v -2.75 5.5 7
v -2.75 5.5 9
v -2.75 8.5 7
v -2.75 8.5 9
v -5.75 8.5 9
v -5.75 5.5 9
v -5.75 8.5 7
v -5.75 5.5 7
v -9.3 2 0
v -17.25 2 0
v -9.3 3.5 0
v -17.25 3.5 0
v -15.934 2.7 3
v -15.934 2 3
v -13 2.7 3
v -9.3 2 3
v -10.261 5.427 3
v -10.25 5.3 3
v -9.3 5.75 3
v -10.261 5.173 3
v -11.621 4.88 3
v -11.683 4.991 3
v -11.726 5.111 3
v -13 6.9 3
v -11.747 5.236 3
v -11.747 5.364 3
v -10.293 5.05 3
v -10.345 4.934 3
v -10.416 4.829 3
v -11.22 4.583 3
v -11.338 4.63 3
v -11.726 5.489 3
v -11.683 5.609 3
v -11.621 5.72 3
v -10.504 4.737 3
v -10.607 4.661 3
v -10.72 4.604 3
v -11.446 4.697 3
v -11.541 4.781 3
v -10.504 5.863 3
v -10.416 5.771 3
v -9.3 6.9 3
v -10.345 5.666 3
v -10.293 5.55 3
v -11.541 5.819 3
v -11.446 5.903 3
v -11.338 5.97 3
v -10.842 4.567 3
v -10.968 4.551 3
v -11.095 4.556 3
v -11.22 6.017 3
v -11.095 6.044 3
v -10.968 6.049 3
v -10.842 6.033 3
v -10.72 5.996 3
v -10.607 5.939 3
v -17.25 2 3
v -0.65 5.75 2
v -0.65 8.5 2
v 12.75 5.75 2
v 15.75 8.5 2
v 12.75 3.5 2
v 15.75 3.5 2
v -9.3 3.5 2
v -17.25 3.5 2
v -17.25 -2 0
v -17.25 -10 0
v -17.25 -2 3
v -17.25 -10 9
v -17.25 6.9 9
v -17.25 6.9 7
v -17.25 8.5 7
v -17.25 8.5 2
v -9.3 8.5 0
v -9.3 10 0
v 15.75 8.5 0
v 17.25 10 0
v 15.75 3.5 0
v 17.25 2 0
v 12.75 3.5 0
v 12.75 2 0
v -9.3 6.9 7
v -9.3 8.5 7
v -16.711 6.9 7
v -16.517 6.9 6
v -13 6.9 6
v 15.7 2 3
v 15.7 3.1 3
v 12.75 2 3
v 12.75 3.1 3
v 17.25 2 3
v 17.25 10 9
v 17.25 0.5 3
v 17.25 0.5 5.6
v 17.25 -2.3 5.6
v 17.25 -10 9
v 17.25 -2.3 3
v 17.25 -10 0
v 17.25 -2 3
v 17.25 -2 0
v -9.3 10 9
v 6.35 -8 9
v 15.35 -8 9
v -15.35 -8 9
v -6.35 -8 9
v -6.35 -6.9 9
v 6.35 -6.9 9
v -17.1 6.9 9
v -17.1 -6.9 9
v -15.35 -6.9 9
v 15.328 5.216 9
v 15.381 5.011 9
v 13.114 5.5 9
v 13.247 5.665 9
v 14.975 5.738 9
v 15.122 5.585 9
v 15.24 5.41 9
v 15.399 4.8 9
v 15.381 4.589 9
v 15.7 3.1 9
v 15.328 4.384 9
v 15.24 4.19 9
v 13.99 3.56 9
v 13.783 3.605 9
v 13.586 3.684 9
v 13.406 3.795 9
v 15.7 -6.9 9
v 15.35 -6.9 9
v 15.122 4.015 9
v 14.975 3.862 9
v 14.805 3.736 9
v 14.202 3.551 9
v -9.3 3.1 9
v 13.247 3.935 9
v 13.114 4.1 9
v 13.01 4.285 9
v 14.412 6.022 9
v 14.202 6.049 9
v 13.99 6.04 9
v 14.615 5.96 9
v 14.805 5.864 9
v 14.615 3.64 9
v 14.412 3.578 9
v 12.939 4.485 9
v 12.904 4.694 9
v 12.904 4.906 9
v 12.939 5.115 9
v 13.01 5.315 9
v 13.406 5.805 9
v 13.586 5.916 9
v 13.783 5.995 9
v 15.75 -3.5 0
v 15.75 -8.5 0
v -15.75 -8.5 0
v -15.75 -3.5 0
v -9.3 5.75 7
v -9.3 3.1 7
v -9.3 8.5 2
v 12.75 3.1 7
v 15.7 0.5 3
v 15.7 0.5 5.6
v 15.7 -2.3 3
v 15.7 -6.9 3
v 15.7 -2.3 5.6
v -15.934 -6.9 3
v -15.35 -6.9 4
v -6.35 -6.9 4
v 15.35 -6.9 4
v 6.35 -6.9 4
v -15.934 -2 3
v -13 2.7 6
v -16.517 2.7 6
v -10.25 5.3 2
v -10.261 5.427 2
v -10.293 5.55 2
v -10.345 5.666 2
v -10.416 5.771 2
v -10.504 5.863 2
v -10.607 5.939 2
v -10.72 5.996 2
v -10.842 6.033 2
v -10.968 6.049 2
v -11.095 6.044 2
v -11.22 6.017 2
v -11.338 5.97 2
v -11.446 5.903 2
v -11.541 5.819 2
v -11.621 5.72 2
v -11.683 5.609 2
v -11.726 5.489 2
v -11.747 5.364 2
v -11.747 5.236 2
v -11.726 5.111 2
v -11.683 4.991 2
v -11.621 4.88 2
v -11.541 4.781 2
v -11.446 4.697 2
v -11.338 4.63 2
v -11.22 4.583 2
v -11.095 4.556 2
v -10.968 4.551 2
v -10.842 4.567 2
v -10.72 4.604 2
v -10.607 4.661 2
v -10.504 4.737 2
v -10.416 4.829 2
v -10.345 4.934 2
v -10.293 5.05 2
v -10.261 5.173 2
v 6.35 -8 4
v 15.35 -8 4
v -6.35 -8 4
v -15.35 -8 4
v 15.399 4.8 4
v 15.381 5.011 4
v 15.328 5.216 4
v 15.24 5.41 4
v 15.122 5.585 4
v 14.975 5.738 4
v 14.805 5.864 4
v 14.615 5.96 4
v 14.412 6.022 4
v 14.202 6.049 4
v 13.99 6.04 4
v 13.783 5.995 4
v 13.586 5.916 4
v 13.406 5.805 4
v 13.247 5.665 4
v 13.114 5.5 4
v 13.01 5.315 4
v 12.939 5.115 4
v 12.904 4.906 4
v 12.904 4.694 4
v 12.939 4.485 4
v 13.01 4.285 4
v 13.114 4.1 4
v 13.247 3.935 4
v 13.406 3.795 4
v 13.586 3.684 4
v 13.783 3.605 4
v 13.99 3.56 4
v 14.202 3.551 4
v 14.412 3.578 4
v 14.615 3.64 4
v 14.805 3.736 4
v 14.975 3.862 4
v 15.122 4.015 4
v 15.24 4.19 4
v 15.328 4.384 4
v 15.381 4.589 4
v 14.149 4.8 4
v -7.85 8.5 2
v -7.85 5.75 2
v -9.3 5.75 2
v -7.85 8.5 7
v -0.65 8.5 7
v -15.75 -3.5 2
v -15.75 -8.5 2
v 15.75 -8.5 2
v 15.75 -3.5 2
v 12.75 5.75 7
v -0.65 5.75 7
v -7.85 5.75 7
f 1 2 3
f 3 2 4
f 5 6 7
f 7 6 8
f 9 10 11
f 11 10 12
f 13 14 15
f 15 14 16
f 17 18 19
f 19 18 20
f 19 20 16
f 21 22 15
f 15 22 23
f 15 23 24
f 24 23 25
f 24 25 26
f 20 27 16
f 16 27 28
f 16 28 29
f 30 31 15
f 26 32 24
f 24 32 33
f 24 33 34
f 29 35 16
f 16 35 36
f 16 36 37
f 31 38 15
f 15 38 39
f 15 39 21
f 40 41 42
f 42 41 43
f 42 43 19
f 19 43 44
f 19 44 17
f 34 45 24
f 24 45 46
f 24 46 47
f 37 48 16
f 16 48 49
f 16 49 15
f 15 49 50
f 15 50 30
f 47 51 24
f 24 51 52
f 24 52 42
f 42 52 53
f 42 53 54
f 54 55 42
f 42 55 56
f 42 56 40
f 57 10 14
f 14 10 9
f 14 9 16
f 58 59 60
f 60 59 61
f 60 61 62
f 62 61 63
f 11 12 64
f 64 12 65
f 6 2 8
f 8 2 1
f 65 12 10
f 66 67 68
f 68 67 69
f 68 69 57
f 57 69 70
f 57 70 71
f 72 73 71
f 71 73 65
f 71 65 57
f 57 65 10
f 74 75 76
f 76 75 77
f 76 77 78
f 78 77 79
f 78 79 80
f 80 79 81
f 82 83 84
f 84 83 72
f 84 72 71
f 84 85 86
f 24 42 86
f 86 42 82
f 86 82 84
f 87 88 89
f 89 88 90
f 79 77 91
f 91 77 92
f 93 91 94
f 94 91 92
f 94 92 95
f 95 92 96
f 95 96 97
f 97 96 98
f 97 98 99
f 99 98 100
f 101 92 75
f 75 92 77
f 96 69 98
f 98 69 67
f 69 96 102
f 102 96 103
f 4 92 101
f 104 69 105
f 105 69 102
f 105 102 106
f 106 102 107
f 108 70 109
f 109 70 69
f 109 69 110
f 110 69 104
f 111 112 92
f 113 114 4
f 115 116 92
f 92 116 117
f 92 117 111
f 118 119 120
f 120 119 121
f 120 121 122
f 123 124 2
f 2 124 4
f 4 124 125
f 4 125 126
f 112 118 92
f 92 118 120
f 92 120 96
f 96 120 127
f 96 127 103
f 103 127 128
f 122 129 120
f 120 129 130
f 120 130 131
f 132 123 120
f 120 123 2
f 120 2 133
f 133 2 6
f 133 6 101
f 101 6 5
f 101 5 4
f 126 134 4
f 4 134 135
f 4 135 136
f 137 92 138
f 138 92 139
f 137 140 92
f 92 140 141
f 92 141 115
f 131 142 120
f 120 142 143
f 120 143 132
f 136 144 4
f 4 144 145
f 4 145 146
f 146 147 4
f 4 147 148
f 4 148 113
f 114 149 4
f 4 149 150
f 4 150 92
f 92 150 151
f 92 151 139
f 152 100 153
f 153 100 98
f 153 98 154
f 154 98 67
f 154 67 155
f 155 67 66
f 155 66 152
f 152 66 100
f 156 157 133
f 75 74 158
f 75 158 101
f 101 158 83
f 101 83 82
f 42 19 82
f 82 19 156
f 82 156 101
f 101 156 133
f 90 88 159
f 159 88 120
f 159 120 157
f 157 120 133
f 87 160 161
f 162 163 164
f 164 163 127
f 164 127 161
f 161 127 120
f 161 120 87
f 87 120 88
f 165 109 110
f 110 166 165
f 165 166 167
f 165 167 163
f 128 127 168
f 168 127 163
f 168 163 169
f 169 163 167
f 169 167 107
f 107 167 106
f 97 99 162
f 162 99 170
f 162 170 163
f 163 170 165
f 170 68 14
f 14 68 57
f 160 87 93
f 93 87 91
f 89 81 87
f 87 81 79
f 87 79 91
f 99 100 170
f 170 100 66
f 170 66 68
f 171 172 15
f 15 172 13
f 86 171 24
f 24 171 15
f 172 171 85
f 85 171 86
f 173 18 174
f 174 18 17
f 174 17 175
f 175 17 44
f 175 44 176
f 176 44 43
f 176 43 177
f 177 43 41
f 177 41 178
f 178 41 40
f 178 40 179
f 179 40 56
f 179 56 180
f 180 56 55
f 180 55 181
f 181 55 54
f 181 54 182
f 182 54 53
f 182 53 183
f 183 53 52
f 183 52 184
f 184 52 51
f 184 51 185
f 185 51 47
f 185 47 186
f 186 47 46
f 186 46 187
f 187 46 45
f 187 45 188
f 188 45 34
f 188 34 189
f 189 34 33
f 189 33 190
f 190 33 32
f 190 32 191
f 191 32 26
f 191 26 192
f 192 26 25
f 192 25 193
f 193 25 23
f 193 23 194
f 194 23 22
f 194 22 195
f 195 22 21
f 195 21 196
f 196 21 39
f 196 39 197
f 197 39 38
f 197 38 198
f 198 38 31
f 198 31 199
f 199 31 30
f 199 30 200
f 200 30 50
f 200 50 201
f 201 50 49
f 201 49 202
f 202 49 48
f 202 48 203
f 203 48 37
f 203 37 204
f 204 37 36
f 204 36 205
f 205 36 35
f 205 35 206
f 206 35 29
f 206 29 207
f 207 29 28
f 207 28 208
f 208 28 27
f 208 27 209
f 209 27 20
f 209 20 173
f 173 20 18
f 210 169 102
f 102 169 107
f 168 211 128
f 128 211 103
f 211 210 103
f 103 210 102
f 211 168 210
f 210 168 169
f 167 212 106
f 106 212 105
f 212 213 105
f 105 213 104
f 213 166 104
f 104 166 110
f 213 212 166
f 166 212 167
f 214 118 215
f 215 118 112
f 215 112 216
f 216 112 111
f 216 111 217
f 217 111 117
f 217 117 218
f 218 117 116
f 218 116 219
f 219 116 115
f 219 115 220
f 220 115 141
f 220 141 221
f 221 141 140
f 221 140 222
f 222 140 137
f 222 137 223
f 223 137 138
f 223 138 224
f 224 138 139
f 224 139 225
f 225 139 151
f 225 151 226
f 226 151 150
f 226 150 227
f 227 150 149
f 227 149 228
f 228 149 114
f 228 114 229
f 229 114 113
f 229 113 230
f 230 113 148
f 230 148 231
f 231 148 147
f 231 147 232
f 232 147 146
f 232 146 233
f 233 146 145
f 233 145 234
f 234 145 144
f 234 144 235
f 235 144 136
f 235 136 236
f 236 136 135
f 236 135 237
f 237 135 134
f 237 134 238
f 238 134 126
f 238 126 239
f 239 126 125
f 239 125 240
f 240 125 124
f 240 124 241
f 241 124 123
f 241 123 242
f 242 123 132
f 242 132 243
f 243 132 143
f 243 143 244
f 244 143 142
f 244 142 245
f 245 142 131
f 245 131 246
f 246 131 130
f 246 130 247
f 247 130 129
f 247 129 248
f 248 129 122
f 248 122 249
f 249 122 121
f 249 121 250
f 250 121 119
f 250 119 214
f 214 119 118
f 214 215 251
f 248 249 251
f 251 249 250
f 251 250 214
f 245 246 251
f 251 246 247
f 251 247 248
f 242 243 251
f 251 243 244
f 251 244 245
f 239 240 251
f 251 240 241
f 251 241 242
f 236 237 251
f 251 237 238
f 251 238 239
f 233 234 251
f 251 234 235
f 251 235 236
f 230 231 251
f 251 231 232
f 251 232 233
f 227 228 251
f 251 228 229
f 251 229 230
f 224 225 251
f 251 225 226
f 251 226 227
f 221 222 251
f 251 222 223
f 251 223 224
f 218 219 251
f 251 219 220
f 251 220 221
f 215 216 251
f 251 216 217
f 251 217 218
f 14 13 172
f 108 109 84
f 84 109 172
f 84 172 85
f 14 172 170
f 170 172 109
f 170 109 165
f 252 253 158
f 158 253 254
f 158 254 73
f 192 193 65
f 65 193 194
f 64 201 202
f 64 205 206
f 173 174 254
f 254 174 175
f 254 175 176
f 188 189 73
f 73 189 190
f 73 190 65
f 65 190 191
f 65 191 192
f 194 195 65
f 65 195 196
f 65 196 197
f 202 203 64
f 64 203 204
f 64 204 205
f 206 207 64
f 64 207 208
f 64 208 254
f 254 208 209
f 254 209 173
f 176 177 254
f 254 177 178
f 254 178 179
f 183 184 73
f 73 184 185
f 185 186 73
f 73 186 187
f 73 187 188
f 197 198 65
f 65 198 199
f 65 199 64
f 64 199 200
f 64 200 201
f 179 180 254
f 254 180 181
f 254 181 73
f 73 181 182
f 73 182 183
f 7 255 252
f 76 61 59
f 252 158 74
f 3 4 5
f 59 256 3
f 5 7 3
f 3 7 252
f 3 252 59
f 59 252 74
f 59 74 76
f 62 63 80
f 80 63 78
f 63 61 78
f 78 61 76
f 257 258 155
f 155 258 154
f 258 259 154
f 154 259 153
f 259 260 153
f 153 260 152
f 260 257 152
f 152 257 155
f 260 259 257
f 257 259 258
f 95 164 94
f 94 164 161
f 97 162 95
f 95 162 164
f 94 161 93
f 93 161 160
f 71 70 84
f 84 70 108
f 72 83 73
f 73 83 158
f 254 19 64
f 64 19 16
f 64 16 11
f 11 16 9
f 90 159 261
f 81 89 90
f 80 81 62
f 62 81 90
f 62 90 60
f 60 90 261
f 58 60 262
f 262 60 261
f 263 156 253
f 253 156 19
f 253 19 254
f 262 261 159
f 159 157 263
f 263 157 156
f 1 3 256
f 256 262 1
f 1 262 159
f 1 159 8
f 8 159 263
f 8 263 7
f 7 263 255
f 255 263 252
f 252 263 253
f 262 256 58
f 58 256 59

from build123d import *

# Parameters (mm, degrees)
SKETCH1_W           = 34.5
SKETCH1_H           = 20
BOSS_EXTRUDE1_DEPTH = 9
CUT_EXTRUDE1_DEPTH  = 6
SKETCH5_W           = 3
SKETCH5_H           = 4
CUT_EXTRUDE2_DEPTH  = 35
SKETCH7_W           = 2.7
SKETCH7_H           = 4.2
BOSS_EXTRUDE3_DEPTH = 3
SKETCH14_R          = 0.75
CUT_EXTRUDE9_DEPTH  = 2
SKETCH8_R           = 1.25
SKETCH8_W           = 9
SKETCH8_H           = 1.1
CUT_EXTRUDE3_DEPTH  = 5
CHAMFER1_SIZE       = 1.4
CHAMFER1_SIZE_2     = 7.202375622
SKETCH6_W           = 31.5
SKETCH6_H           = 5
CUT_EXTRUDE6_DEPTH  = 2
SKETCH11_W          = 2.6
SKETCH11_H          = 2.8
CUT_EXTRUDE7_DEPTH  = 2
SKETCH12_W          = 3
SKETCH12_H          = 3
CUT_EXTRUDE8_DEPTH  = 7
SKETCH16_W          = 7.95
SKETCH16_H          = 3.1
CUT_EXTRUDE10_DEPTH = 2
SKETCH17_W          = 7.95
SKETCH17_H          = 7
CUT_EXTRUDE11_DEPTH = 1.5
SKETCH18_W          = 1.5
SKETCH18_H          = 5
CUT_EXTRUDE12_DEPTH = 2
SKETCH20_W          = 22.05
SKETCH20_H          = 3.75
CUT_EXTRUDE13_DEPTH = 7
SKETCH21_W          = 7.2
SKETCH21_H          = 2.75
CUT_EXTRUDE14_DEPTH = 5


with BuildPart() as part:
    # Sketch1 → Boss-Extrude1 (new body)
    with BuildSketch(Plane.XY):
        Rectangle(SKETCH1_W, SKETCH1_H)
    extrude(amount=BOSS_EXTRUDE1_DEPTH)

    # Sketch3 → Cut-Extrude1 (cut)
    with BuildSketch(Plane.XY.offset(9)):
        Polygon((15.7, -6.9), (15.7, 3.1), (-9.3, 3.1), (-9.3, 6.9), (-15.7, 6.9), (-15.7, -6.9), align=None)
    extrude(amount=-CUT_EXTRUDE1_DEPTH, mode=Mode.SUBTRACT)

    # Sketch5 → Cut-Extrude2 (cut)
    with BuildSketch(Plane(origin=(17.25, 0, 0), x_dir=(0, 0, -1), z_dir=(1, 0, 0))):
        with Locations((-1.5, 0)):
            Rectangle(SKETCH5_W, SKETCH5_H)
    extrude(amount=-CUT_EXTRUDE2_DEPTH, mode=Mode.SUBTRACT)

    # Sketch7 → Boss-Extrude3 (add)
    with BuildSketch(Plane.XY.offset(3)):
        with Locations((-14.35, 4.8)):
            Rectangle(SKETCH7_W, SKETCH7_H)
    extrude(amount=BOSS_EXTRUDE3_DEPTH)

    # Sketch14 → Cut-Extrude9 (cut)
    with BuildSketch(Plane.XY.offset(3)):
        with Locations((-11, 5.3)):
            Circle(SKETCH14_R)
    extrude(amount=-CUT_EXTRUDE9_DEPTH, mode=Mode.SUBTRACT)

    # Sketch8 → Cut-Extrude3 (cut)
    with BuildSketch(Plane.XY.offset(9)):
        with Locations((14.149147106, 4.8)):
            Circle(SKETCH8_R)
        with Locations((-10.85, -7.45)):
            Rectangle(SKETCH8_W, SKETCH8_H)
        with Locations((10.85, -7.45)):
            Rectangle(SKETCH8_W, SKETCH8_H)
    extrude(amount=-CUT_EXTRUDE3_DEPTH, mode=Mode.SUBTRACT)

    # Chamfer1
    # the kernel refuses this chamfer: 7.202375622, 1.4 mm, written as the material it takes off along each edge
    with BuildSketch(Plane(origin=(-15.7, 6.9, 9), x_dir=(-0.9816291836389949, 0, 0.190798704996235), z_dir=(0, -1, 0))) as chamfer1_piece_1_section:
        Polygon((CHAMFER1_SIZE * 0.981629183639, CHAMFER1_SIZE * 0.190798704996), (-CHAMFER1_SIZE_2 * 0.190798705006, CHAMFER1_SIZE_2 * 0.981629183688), (0, 0), align=None)
    chamfer1_piece_1 = extrude(amount=13.8, mode=Mode.PRIVATE)
    chamfer1_piece_1 = split(chamfer1_piece_1, bisect_by=Plane(origin=(-16.266997619, 4.8, 6), z_dir=(0, 0, 1)), keep=Keep.TOP, mode=Mode.PRIVATE)
    add(chamfer1_piece_1, mode=Mode.SUBTRACT)
    with BuildSketch(Plane(origin=(-15.7, 25.613448453, 9), x_dir=(-0.9816291836389951, 0, 0.19079870499623477), z_dir=(0, -1, 0))) as chamfer1_piece_2_section:
        Polygon((CHAMFER1_SIZE * 0.981629183639, CHAMFER1_SIZE * 0.190798704996), (-CHAMFER1_SIZE_2 * 0.190798705006, CHAMFER1_SIZE_2 * 0.981629183688), (0, 0), align=None)
    chamfer1_piece_2 = extrude(amount=32.513448453, mode=Mode.PRIVATE)
    chamfer1_piece_2 = split(chamfer1_piece_2, bisect_by=Plane(origin=(-15.989617837, 2.35, 3), z_dir=(0, 0, 1)), keep=Keep.TOP, mode=Mode.PRIVATE)
    chamfer1_piece_2 = split(chamfer1_piece_2, bisect_by=Plane(origin=(-15.989617837, 2.7, 4.777533587), z_dir=(0, -1, 0)), keep=Keep.TOP, mode=Mode.PRIVATE)
    add(chamfer1_piece_2, mode=Mode.SUBTRACT)

    # Sketch6 → Cut-Extrude6 (cut)
    with BuildSketch(Plane(origin=(0, 0, 0), x_dir=(-1, 0, 0), z_dir=(0, 0, -1))):
        with Locations((0, 6)):
            Rectangle(SKETCH6_W, SKETCH6_H)
        with Locations((0, -6)):
            Rectangle(SKETCH6_W, SKETCH6_H)
    extrude(amount=-CUT_EXTRUDE6_DEPTH, mode=Mode.SUBTRACT)

    # Sketch11 → Cut-Extrude7 (cut)
    with BuildSketch(Plane(origin=(17.25, 0, 0), x_dir=(0, 0, -1), z_dir=(1, 0, 0))):
        with Locations((-4.3, -0.9)):
            Rectangle(SKETCH11_W, SKETCH11_H)
    extrude(amount=-CUT_EXTRUDE7_DEPTH, mode=Mode.SUBTRACT)

    # Sketch12 → Cut-Extrude8 (cut)
    with BuildSketch(Plane(origin=(0, 0, 2), x_dir=(-1, 0, 0), z_dir=(0, 0, -1))):
        with Locations((4.25, 7)):
            Rectangle(SKETCH12_W, SKETCH12_H)
    extrude(amount=-CUT_EXTRUDE8_DEPTH, mode=Mode.SUBTRACT)

    # Sketch16 → Cut-Extrude10 (cut)
    with BuildSketch(Plane.XY.offset(9)):
        with Locations((-13.275, 8.45)):
            Rectangle(SKETCH16_W, SKETCH16_H)
    extrude(amount=-CUT_EXTRUDE10_DEPTH, mode=Mode.SUBTRACT)

    # Sketch17 → Cut-Extrude11 (cut)
    with BuildSketch(Plane(origin=(0, 10, 0), x_dir=(1, 0, 0), z_dir=(0, 1, 0))):
        with Locations((-13.275, -3.5)):
            Rectangle(SKETCH17_W, SKETCH17_H)
    extrude(amount=-CUT_EXTRUDE11_DEPTH, mode=Mode.SUBTRACT)

    # Sketch18 → Cut-Extrude12 (cut)
    with BuildSketch(Plane.XY):
        with Locations((-16.5, 6)):
            Rectangle(SKETCH18_W, SKETCH18_H)
    extrude(amount=CUT_EXTRUDE12_DEPTH, mode=Mode.SUBTRACT)

    # Sketch20 → Cut-Extrude13 (cut)
    with BuildSketch(Plane(origin=(0, 0, 0), x_dir=(-1, 0, 0), z_dir=(0, 0, -1))):
        with Locations((-1.725, 3.875)):
            Rectangle(SKETCH20_W, SKETCH20_H)
    extrude(amount=-CUT_EXTRUDE13_DEPTH, mode=Mode.SUBTRACT)

    # Sketch21 → Cut-Extrude14 (cut)
    with BuildSketch(Plane(origin=(0, 0, 2), x_dir=(-1, 0, 0), z_dir=(0, 0, -1))):
        with Locations((4.25, 7.125)):
            Rectangle(SKETCH21_W, SKETCH21_H)
    extrude(amount=-CUT_EXTRUDE14_DEPTH, mode=Mode.SUBTRACT)


solid = part.part
